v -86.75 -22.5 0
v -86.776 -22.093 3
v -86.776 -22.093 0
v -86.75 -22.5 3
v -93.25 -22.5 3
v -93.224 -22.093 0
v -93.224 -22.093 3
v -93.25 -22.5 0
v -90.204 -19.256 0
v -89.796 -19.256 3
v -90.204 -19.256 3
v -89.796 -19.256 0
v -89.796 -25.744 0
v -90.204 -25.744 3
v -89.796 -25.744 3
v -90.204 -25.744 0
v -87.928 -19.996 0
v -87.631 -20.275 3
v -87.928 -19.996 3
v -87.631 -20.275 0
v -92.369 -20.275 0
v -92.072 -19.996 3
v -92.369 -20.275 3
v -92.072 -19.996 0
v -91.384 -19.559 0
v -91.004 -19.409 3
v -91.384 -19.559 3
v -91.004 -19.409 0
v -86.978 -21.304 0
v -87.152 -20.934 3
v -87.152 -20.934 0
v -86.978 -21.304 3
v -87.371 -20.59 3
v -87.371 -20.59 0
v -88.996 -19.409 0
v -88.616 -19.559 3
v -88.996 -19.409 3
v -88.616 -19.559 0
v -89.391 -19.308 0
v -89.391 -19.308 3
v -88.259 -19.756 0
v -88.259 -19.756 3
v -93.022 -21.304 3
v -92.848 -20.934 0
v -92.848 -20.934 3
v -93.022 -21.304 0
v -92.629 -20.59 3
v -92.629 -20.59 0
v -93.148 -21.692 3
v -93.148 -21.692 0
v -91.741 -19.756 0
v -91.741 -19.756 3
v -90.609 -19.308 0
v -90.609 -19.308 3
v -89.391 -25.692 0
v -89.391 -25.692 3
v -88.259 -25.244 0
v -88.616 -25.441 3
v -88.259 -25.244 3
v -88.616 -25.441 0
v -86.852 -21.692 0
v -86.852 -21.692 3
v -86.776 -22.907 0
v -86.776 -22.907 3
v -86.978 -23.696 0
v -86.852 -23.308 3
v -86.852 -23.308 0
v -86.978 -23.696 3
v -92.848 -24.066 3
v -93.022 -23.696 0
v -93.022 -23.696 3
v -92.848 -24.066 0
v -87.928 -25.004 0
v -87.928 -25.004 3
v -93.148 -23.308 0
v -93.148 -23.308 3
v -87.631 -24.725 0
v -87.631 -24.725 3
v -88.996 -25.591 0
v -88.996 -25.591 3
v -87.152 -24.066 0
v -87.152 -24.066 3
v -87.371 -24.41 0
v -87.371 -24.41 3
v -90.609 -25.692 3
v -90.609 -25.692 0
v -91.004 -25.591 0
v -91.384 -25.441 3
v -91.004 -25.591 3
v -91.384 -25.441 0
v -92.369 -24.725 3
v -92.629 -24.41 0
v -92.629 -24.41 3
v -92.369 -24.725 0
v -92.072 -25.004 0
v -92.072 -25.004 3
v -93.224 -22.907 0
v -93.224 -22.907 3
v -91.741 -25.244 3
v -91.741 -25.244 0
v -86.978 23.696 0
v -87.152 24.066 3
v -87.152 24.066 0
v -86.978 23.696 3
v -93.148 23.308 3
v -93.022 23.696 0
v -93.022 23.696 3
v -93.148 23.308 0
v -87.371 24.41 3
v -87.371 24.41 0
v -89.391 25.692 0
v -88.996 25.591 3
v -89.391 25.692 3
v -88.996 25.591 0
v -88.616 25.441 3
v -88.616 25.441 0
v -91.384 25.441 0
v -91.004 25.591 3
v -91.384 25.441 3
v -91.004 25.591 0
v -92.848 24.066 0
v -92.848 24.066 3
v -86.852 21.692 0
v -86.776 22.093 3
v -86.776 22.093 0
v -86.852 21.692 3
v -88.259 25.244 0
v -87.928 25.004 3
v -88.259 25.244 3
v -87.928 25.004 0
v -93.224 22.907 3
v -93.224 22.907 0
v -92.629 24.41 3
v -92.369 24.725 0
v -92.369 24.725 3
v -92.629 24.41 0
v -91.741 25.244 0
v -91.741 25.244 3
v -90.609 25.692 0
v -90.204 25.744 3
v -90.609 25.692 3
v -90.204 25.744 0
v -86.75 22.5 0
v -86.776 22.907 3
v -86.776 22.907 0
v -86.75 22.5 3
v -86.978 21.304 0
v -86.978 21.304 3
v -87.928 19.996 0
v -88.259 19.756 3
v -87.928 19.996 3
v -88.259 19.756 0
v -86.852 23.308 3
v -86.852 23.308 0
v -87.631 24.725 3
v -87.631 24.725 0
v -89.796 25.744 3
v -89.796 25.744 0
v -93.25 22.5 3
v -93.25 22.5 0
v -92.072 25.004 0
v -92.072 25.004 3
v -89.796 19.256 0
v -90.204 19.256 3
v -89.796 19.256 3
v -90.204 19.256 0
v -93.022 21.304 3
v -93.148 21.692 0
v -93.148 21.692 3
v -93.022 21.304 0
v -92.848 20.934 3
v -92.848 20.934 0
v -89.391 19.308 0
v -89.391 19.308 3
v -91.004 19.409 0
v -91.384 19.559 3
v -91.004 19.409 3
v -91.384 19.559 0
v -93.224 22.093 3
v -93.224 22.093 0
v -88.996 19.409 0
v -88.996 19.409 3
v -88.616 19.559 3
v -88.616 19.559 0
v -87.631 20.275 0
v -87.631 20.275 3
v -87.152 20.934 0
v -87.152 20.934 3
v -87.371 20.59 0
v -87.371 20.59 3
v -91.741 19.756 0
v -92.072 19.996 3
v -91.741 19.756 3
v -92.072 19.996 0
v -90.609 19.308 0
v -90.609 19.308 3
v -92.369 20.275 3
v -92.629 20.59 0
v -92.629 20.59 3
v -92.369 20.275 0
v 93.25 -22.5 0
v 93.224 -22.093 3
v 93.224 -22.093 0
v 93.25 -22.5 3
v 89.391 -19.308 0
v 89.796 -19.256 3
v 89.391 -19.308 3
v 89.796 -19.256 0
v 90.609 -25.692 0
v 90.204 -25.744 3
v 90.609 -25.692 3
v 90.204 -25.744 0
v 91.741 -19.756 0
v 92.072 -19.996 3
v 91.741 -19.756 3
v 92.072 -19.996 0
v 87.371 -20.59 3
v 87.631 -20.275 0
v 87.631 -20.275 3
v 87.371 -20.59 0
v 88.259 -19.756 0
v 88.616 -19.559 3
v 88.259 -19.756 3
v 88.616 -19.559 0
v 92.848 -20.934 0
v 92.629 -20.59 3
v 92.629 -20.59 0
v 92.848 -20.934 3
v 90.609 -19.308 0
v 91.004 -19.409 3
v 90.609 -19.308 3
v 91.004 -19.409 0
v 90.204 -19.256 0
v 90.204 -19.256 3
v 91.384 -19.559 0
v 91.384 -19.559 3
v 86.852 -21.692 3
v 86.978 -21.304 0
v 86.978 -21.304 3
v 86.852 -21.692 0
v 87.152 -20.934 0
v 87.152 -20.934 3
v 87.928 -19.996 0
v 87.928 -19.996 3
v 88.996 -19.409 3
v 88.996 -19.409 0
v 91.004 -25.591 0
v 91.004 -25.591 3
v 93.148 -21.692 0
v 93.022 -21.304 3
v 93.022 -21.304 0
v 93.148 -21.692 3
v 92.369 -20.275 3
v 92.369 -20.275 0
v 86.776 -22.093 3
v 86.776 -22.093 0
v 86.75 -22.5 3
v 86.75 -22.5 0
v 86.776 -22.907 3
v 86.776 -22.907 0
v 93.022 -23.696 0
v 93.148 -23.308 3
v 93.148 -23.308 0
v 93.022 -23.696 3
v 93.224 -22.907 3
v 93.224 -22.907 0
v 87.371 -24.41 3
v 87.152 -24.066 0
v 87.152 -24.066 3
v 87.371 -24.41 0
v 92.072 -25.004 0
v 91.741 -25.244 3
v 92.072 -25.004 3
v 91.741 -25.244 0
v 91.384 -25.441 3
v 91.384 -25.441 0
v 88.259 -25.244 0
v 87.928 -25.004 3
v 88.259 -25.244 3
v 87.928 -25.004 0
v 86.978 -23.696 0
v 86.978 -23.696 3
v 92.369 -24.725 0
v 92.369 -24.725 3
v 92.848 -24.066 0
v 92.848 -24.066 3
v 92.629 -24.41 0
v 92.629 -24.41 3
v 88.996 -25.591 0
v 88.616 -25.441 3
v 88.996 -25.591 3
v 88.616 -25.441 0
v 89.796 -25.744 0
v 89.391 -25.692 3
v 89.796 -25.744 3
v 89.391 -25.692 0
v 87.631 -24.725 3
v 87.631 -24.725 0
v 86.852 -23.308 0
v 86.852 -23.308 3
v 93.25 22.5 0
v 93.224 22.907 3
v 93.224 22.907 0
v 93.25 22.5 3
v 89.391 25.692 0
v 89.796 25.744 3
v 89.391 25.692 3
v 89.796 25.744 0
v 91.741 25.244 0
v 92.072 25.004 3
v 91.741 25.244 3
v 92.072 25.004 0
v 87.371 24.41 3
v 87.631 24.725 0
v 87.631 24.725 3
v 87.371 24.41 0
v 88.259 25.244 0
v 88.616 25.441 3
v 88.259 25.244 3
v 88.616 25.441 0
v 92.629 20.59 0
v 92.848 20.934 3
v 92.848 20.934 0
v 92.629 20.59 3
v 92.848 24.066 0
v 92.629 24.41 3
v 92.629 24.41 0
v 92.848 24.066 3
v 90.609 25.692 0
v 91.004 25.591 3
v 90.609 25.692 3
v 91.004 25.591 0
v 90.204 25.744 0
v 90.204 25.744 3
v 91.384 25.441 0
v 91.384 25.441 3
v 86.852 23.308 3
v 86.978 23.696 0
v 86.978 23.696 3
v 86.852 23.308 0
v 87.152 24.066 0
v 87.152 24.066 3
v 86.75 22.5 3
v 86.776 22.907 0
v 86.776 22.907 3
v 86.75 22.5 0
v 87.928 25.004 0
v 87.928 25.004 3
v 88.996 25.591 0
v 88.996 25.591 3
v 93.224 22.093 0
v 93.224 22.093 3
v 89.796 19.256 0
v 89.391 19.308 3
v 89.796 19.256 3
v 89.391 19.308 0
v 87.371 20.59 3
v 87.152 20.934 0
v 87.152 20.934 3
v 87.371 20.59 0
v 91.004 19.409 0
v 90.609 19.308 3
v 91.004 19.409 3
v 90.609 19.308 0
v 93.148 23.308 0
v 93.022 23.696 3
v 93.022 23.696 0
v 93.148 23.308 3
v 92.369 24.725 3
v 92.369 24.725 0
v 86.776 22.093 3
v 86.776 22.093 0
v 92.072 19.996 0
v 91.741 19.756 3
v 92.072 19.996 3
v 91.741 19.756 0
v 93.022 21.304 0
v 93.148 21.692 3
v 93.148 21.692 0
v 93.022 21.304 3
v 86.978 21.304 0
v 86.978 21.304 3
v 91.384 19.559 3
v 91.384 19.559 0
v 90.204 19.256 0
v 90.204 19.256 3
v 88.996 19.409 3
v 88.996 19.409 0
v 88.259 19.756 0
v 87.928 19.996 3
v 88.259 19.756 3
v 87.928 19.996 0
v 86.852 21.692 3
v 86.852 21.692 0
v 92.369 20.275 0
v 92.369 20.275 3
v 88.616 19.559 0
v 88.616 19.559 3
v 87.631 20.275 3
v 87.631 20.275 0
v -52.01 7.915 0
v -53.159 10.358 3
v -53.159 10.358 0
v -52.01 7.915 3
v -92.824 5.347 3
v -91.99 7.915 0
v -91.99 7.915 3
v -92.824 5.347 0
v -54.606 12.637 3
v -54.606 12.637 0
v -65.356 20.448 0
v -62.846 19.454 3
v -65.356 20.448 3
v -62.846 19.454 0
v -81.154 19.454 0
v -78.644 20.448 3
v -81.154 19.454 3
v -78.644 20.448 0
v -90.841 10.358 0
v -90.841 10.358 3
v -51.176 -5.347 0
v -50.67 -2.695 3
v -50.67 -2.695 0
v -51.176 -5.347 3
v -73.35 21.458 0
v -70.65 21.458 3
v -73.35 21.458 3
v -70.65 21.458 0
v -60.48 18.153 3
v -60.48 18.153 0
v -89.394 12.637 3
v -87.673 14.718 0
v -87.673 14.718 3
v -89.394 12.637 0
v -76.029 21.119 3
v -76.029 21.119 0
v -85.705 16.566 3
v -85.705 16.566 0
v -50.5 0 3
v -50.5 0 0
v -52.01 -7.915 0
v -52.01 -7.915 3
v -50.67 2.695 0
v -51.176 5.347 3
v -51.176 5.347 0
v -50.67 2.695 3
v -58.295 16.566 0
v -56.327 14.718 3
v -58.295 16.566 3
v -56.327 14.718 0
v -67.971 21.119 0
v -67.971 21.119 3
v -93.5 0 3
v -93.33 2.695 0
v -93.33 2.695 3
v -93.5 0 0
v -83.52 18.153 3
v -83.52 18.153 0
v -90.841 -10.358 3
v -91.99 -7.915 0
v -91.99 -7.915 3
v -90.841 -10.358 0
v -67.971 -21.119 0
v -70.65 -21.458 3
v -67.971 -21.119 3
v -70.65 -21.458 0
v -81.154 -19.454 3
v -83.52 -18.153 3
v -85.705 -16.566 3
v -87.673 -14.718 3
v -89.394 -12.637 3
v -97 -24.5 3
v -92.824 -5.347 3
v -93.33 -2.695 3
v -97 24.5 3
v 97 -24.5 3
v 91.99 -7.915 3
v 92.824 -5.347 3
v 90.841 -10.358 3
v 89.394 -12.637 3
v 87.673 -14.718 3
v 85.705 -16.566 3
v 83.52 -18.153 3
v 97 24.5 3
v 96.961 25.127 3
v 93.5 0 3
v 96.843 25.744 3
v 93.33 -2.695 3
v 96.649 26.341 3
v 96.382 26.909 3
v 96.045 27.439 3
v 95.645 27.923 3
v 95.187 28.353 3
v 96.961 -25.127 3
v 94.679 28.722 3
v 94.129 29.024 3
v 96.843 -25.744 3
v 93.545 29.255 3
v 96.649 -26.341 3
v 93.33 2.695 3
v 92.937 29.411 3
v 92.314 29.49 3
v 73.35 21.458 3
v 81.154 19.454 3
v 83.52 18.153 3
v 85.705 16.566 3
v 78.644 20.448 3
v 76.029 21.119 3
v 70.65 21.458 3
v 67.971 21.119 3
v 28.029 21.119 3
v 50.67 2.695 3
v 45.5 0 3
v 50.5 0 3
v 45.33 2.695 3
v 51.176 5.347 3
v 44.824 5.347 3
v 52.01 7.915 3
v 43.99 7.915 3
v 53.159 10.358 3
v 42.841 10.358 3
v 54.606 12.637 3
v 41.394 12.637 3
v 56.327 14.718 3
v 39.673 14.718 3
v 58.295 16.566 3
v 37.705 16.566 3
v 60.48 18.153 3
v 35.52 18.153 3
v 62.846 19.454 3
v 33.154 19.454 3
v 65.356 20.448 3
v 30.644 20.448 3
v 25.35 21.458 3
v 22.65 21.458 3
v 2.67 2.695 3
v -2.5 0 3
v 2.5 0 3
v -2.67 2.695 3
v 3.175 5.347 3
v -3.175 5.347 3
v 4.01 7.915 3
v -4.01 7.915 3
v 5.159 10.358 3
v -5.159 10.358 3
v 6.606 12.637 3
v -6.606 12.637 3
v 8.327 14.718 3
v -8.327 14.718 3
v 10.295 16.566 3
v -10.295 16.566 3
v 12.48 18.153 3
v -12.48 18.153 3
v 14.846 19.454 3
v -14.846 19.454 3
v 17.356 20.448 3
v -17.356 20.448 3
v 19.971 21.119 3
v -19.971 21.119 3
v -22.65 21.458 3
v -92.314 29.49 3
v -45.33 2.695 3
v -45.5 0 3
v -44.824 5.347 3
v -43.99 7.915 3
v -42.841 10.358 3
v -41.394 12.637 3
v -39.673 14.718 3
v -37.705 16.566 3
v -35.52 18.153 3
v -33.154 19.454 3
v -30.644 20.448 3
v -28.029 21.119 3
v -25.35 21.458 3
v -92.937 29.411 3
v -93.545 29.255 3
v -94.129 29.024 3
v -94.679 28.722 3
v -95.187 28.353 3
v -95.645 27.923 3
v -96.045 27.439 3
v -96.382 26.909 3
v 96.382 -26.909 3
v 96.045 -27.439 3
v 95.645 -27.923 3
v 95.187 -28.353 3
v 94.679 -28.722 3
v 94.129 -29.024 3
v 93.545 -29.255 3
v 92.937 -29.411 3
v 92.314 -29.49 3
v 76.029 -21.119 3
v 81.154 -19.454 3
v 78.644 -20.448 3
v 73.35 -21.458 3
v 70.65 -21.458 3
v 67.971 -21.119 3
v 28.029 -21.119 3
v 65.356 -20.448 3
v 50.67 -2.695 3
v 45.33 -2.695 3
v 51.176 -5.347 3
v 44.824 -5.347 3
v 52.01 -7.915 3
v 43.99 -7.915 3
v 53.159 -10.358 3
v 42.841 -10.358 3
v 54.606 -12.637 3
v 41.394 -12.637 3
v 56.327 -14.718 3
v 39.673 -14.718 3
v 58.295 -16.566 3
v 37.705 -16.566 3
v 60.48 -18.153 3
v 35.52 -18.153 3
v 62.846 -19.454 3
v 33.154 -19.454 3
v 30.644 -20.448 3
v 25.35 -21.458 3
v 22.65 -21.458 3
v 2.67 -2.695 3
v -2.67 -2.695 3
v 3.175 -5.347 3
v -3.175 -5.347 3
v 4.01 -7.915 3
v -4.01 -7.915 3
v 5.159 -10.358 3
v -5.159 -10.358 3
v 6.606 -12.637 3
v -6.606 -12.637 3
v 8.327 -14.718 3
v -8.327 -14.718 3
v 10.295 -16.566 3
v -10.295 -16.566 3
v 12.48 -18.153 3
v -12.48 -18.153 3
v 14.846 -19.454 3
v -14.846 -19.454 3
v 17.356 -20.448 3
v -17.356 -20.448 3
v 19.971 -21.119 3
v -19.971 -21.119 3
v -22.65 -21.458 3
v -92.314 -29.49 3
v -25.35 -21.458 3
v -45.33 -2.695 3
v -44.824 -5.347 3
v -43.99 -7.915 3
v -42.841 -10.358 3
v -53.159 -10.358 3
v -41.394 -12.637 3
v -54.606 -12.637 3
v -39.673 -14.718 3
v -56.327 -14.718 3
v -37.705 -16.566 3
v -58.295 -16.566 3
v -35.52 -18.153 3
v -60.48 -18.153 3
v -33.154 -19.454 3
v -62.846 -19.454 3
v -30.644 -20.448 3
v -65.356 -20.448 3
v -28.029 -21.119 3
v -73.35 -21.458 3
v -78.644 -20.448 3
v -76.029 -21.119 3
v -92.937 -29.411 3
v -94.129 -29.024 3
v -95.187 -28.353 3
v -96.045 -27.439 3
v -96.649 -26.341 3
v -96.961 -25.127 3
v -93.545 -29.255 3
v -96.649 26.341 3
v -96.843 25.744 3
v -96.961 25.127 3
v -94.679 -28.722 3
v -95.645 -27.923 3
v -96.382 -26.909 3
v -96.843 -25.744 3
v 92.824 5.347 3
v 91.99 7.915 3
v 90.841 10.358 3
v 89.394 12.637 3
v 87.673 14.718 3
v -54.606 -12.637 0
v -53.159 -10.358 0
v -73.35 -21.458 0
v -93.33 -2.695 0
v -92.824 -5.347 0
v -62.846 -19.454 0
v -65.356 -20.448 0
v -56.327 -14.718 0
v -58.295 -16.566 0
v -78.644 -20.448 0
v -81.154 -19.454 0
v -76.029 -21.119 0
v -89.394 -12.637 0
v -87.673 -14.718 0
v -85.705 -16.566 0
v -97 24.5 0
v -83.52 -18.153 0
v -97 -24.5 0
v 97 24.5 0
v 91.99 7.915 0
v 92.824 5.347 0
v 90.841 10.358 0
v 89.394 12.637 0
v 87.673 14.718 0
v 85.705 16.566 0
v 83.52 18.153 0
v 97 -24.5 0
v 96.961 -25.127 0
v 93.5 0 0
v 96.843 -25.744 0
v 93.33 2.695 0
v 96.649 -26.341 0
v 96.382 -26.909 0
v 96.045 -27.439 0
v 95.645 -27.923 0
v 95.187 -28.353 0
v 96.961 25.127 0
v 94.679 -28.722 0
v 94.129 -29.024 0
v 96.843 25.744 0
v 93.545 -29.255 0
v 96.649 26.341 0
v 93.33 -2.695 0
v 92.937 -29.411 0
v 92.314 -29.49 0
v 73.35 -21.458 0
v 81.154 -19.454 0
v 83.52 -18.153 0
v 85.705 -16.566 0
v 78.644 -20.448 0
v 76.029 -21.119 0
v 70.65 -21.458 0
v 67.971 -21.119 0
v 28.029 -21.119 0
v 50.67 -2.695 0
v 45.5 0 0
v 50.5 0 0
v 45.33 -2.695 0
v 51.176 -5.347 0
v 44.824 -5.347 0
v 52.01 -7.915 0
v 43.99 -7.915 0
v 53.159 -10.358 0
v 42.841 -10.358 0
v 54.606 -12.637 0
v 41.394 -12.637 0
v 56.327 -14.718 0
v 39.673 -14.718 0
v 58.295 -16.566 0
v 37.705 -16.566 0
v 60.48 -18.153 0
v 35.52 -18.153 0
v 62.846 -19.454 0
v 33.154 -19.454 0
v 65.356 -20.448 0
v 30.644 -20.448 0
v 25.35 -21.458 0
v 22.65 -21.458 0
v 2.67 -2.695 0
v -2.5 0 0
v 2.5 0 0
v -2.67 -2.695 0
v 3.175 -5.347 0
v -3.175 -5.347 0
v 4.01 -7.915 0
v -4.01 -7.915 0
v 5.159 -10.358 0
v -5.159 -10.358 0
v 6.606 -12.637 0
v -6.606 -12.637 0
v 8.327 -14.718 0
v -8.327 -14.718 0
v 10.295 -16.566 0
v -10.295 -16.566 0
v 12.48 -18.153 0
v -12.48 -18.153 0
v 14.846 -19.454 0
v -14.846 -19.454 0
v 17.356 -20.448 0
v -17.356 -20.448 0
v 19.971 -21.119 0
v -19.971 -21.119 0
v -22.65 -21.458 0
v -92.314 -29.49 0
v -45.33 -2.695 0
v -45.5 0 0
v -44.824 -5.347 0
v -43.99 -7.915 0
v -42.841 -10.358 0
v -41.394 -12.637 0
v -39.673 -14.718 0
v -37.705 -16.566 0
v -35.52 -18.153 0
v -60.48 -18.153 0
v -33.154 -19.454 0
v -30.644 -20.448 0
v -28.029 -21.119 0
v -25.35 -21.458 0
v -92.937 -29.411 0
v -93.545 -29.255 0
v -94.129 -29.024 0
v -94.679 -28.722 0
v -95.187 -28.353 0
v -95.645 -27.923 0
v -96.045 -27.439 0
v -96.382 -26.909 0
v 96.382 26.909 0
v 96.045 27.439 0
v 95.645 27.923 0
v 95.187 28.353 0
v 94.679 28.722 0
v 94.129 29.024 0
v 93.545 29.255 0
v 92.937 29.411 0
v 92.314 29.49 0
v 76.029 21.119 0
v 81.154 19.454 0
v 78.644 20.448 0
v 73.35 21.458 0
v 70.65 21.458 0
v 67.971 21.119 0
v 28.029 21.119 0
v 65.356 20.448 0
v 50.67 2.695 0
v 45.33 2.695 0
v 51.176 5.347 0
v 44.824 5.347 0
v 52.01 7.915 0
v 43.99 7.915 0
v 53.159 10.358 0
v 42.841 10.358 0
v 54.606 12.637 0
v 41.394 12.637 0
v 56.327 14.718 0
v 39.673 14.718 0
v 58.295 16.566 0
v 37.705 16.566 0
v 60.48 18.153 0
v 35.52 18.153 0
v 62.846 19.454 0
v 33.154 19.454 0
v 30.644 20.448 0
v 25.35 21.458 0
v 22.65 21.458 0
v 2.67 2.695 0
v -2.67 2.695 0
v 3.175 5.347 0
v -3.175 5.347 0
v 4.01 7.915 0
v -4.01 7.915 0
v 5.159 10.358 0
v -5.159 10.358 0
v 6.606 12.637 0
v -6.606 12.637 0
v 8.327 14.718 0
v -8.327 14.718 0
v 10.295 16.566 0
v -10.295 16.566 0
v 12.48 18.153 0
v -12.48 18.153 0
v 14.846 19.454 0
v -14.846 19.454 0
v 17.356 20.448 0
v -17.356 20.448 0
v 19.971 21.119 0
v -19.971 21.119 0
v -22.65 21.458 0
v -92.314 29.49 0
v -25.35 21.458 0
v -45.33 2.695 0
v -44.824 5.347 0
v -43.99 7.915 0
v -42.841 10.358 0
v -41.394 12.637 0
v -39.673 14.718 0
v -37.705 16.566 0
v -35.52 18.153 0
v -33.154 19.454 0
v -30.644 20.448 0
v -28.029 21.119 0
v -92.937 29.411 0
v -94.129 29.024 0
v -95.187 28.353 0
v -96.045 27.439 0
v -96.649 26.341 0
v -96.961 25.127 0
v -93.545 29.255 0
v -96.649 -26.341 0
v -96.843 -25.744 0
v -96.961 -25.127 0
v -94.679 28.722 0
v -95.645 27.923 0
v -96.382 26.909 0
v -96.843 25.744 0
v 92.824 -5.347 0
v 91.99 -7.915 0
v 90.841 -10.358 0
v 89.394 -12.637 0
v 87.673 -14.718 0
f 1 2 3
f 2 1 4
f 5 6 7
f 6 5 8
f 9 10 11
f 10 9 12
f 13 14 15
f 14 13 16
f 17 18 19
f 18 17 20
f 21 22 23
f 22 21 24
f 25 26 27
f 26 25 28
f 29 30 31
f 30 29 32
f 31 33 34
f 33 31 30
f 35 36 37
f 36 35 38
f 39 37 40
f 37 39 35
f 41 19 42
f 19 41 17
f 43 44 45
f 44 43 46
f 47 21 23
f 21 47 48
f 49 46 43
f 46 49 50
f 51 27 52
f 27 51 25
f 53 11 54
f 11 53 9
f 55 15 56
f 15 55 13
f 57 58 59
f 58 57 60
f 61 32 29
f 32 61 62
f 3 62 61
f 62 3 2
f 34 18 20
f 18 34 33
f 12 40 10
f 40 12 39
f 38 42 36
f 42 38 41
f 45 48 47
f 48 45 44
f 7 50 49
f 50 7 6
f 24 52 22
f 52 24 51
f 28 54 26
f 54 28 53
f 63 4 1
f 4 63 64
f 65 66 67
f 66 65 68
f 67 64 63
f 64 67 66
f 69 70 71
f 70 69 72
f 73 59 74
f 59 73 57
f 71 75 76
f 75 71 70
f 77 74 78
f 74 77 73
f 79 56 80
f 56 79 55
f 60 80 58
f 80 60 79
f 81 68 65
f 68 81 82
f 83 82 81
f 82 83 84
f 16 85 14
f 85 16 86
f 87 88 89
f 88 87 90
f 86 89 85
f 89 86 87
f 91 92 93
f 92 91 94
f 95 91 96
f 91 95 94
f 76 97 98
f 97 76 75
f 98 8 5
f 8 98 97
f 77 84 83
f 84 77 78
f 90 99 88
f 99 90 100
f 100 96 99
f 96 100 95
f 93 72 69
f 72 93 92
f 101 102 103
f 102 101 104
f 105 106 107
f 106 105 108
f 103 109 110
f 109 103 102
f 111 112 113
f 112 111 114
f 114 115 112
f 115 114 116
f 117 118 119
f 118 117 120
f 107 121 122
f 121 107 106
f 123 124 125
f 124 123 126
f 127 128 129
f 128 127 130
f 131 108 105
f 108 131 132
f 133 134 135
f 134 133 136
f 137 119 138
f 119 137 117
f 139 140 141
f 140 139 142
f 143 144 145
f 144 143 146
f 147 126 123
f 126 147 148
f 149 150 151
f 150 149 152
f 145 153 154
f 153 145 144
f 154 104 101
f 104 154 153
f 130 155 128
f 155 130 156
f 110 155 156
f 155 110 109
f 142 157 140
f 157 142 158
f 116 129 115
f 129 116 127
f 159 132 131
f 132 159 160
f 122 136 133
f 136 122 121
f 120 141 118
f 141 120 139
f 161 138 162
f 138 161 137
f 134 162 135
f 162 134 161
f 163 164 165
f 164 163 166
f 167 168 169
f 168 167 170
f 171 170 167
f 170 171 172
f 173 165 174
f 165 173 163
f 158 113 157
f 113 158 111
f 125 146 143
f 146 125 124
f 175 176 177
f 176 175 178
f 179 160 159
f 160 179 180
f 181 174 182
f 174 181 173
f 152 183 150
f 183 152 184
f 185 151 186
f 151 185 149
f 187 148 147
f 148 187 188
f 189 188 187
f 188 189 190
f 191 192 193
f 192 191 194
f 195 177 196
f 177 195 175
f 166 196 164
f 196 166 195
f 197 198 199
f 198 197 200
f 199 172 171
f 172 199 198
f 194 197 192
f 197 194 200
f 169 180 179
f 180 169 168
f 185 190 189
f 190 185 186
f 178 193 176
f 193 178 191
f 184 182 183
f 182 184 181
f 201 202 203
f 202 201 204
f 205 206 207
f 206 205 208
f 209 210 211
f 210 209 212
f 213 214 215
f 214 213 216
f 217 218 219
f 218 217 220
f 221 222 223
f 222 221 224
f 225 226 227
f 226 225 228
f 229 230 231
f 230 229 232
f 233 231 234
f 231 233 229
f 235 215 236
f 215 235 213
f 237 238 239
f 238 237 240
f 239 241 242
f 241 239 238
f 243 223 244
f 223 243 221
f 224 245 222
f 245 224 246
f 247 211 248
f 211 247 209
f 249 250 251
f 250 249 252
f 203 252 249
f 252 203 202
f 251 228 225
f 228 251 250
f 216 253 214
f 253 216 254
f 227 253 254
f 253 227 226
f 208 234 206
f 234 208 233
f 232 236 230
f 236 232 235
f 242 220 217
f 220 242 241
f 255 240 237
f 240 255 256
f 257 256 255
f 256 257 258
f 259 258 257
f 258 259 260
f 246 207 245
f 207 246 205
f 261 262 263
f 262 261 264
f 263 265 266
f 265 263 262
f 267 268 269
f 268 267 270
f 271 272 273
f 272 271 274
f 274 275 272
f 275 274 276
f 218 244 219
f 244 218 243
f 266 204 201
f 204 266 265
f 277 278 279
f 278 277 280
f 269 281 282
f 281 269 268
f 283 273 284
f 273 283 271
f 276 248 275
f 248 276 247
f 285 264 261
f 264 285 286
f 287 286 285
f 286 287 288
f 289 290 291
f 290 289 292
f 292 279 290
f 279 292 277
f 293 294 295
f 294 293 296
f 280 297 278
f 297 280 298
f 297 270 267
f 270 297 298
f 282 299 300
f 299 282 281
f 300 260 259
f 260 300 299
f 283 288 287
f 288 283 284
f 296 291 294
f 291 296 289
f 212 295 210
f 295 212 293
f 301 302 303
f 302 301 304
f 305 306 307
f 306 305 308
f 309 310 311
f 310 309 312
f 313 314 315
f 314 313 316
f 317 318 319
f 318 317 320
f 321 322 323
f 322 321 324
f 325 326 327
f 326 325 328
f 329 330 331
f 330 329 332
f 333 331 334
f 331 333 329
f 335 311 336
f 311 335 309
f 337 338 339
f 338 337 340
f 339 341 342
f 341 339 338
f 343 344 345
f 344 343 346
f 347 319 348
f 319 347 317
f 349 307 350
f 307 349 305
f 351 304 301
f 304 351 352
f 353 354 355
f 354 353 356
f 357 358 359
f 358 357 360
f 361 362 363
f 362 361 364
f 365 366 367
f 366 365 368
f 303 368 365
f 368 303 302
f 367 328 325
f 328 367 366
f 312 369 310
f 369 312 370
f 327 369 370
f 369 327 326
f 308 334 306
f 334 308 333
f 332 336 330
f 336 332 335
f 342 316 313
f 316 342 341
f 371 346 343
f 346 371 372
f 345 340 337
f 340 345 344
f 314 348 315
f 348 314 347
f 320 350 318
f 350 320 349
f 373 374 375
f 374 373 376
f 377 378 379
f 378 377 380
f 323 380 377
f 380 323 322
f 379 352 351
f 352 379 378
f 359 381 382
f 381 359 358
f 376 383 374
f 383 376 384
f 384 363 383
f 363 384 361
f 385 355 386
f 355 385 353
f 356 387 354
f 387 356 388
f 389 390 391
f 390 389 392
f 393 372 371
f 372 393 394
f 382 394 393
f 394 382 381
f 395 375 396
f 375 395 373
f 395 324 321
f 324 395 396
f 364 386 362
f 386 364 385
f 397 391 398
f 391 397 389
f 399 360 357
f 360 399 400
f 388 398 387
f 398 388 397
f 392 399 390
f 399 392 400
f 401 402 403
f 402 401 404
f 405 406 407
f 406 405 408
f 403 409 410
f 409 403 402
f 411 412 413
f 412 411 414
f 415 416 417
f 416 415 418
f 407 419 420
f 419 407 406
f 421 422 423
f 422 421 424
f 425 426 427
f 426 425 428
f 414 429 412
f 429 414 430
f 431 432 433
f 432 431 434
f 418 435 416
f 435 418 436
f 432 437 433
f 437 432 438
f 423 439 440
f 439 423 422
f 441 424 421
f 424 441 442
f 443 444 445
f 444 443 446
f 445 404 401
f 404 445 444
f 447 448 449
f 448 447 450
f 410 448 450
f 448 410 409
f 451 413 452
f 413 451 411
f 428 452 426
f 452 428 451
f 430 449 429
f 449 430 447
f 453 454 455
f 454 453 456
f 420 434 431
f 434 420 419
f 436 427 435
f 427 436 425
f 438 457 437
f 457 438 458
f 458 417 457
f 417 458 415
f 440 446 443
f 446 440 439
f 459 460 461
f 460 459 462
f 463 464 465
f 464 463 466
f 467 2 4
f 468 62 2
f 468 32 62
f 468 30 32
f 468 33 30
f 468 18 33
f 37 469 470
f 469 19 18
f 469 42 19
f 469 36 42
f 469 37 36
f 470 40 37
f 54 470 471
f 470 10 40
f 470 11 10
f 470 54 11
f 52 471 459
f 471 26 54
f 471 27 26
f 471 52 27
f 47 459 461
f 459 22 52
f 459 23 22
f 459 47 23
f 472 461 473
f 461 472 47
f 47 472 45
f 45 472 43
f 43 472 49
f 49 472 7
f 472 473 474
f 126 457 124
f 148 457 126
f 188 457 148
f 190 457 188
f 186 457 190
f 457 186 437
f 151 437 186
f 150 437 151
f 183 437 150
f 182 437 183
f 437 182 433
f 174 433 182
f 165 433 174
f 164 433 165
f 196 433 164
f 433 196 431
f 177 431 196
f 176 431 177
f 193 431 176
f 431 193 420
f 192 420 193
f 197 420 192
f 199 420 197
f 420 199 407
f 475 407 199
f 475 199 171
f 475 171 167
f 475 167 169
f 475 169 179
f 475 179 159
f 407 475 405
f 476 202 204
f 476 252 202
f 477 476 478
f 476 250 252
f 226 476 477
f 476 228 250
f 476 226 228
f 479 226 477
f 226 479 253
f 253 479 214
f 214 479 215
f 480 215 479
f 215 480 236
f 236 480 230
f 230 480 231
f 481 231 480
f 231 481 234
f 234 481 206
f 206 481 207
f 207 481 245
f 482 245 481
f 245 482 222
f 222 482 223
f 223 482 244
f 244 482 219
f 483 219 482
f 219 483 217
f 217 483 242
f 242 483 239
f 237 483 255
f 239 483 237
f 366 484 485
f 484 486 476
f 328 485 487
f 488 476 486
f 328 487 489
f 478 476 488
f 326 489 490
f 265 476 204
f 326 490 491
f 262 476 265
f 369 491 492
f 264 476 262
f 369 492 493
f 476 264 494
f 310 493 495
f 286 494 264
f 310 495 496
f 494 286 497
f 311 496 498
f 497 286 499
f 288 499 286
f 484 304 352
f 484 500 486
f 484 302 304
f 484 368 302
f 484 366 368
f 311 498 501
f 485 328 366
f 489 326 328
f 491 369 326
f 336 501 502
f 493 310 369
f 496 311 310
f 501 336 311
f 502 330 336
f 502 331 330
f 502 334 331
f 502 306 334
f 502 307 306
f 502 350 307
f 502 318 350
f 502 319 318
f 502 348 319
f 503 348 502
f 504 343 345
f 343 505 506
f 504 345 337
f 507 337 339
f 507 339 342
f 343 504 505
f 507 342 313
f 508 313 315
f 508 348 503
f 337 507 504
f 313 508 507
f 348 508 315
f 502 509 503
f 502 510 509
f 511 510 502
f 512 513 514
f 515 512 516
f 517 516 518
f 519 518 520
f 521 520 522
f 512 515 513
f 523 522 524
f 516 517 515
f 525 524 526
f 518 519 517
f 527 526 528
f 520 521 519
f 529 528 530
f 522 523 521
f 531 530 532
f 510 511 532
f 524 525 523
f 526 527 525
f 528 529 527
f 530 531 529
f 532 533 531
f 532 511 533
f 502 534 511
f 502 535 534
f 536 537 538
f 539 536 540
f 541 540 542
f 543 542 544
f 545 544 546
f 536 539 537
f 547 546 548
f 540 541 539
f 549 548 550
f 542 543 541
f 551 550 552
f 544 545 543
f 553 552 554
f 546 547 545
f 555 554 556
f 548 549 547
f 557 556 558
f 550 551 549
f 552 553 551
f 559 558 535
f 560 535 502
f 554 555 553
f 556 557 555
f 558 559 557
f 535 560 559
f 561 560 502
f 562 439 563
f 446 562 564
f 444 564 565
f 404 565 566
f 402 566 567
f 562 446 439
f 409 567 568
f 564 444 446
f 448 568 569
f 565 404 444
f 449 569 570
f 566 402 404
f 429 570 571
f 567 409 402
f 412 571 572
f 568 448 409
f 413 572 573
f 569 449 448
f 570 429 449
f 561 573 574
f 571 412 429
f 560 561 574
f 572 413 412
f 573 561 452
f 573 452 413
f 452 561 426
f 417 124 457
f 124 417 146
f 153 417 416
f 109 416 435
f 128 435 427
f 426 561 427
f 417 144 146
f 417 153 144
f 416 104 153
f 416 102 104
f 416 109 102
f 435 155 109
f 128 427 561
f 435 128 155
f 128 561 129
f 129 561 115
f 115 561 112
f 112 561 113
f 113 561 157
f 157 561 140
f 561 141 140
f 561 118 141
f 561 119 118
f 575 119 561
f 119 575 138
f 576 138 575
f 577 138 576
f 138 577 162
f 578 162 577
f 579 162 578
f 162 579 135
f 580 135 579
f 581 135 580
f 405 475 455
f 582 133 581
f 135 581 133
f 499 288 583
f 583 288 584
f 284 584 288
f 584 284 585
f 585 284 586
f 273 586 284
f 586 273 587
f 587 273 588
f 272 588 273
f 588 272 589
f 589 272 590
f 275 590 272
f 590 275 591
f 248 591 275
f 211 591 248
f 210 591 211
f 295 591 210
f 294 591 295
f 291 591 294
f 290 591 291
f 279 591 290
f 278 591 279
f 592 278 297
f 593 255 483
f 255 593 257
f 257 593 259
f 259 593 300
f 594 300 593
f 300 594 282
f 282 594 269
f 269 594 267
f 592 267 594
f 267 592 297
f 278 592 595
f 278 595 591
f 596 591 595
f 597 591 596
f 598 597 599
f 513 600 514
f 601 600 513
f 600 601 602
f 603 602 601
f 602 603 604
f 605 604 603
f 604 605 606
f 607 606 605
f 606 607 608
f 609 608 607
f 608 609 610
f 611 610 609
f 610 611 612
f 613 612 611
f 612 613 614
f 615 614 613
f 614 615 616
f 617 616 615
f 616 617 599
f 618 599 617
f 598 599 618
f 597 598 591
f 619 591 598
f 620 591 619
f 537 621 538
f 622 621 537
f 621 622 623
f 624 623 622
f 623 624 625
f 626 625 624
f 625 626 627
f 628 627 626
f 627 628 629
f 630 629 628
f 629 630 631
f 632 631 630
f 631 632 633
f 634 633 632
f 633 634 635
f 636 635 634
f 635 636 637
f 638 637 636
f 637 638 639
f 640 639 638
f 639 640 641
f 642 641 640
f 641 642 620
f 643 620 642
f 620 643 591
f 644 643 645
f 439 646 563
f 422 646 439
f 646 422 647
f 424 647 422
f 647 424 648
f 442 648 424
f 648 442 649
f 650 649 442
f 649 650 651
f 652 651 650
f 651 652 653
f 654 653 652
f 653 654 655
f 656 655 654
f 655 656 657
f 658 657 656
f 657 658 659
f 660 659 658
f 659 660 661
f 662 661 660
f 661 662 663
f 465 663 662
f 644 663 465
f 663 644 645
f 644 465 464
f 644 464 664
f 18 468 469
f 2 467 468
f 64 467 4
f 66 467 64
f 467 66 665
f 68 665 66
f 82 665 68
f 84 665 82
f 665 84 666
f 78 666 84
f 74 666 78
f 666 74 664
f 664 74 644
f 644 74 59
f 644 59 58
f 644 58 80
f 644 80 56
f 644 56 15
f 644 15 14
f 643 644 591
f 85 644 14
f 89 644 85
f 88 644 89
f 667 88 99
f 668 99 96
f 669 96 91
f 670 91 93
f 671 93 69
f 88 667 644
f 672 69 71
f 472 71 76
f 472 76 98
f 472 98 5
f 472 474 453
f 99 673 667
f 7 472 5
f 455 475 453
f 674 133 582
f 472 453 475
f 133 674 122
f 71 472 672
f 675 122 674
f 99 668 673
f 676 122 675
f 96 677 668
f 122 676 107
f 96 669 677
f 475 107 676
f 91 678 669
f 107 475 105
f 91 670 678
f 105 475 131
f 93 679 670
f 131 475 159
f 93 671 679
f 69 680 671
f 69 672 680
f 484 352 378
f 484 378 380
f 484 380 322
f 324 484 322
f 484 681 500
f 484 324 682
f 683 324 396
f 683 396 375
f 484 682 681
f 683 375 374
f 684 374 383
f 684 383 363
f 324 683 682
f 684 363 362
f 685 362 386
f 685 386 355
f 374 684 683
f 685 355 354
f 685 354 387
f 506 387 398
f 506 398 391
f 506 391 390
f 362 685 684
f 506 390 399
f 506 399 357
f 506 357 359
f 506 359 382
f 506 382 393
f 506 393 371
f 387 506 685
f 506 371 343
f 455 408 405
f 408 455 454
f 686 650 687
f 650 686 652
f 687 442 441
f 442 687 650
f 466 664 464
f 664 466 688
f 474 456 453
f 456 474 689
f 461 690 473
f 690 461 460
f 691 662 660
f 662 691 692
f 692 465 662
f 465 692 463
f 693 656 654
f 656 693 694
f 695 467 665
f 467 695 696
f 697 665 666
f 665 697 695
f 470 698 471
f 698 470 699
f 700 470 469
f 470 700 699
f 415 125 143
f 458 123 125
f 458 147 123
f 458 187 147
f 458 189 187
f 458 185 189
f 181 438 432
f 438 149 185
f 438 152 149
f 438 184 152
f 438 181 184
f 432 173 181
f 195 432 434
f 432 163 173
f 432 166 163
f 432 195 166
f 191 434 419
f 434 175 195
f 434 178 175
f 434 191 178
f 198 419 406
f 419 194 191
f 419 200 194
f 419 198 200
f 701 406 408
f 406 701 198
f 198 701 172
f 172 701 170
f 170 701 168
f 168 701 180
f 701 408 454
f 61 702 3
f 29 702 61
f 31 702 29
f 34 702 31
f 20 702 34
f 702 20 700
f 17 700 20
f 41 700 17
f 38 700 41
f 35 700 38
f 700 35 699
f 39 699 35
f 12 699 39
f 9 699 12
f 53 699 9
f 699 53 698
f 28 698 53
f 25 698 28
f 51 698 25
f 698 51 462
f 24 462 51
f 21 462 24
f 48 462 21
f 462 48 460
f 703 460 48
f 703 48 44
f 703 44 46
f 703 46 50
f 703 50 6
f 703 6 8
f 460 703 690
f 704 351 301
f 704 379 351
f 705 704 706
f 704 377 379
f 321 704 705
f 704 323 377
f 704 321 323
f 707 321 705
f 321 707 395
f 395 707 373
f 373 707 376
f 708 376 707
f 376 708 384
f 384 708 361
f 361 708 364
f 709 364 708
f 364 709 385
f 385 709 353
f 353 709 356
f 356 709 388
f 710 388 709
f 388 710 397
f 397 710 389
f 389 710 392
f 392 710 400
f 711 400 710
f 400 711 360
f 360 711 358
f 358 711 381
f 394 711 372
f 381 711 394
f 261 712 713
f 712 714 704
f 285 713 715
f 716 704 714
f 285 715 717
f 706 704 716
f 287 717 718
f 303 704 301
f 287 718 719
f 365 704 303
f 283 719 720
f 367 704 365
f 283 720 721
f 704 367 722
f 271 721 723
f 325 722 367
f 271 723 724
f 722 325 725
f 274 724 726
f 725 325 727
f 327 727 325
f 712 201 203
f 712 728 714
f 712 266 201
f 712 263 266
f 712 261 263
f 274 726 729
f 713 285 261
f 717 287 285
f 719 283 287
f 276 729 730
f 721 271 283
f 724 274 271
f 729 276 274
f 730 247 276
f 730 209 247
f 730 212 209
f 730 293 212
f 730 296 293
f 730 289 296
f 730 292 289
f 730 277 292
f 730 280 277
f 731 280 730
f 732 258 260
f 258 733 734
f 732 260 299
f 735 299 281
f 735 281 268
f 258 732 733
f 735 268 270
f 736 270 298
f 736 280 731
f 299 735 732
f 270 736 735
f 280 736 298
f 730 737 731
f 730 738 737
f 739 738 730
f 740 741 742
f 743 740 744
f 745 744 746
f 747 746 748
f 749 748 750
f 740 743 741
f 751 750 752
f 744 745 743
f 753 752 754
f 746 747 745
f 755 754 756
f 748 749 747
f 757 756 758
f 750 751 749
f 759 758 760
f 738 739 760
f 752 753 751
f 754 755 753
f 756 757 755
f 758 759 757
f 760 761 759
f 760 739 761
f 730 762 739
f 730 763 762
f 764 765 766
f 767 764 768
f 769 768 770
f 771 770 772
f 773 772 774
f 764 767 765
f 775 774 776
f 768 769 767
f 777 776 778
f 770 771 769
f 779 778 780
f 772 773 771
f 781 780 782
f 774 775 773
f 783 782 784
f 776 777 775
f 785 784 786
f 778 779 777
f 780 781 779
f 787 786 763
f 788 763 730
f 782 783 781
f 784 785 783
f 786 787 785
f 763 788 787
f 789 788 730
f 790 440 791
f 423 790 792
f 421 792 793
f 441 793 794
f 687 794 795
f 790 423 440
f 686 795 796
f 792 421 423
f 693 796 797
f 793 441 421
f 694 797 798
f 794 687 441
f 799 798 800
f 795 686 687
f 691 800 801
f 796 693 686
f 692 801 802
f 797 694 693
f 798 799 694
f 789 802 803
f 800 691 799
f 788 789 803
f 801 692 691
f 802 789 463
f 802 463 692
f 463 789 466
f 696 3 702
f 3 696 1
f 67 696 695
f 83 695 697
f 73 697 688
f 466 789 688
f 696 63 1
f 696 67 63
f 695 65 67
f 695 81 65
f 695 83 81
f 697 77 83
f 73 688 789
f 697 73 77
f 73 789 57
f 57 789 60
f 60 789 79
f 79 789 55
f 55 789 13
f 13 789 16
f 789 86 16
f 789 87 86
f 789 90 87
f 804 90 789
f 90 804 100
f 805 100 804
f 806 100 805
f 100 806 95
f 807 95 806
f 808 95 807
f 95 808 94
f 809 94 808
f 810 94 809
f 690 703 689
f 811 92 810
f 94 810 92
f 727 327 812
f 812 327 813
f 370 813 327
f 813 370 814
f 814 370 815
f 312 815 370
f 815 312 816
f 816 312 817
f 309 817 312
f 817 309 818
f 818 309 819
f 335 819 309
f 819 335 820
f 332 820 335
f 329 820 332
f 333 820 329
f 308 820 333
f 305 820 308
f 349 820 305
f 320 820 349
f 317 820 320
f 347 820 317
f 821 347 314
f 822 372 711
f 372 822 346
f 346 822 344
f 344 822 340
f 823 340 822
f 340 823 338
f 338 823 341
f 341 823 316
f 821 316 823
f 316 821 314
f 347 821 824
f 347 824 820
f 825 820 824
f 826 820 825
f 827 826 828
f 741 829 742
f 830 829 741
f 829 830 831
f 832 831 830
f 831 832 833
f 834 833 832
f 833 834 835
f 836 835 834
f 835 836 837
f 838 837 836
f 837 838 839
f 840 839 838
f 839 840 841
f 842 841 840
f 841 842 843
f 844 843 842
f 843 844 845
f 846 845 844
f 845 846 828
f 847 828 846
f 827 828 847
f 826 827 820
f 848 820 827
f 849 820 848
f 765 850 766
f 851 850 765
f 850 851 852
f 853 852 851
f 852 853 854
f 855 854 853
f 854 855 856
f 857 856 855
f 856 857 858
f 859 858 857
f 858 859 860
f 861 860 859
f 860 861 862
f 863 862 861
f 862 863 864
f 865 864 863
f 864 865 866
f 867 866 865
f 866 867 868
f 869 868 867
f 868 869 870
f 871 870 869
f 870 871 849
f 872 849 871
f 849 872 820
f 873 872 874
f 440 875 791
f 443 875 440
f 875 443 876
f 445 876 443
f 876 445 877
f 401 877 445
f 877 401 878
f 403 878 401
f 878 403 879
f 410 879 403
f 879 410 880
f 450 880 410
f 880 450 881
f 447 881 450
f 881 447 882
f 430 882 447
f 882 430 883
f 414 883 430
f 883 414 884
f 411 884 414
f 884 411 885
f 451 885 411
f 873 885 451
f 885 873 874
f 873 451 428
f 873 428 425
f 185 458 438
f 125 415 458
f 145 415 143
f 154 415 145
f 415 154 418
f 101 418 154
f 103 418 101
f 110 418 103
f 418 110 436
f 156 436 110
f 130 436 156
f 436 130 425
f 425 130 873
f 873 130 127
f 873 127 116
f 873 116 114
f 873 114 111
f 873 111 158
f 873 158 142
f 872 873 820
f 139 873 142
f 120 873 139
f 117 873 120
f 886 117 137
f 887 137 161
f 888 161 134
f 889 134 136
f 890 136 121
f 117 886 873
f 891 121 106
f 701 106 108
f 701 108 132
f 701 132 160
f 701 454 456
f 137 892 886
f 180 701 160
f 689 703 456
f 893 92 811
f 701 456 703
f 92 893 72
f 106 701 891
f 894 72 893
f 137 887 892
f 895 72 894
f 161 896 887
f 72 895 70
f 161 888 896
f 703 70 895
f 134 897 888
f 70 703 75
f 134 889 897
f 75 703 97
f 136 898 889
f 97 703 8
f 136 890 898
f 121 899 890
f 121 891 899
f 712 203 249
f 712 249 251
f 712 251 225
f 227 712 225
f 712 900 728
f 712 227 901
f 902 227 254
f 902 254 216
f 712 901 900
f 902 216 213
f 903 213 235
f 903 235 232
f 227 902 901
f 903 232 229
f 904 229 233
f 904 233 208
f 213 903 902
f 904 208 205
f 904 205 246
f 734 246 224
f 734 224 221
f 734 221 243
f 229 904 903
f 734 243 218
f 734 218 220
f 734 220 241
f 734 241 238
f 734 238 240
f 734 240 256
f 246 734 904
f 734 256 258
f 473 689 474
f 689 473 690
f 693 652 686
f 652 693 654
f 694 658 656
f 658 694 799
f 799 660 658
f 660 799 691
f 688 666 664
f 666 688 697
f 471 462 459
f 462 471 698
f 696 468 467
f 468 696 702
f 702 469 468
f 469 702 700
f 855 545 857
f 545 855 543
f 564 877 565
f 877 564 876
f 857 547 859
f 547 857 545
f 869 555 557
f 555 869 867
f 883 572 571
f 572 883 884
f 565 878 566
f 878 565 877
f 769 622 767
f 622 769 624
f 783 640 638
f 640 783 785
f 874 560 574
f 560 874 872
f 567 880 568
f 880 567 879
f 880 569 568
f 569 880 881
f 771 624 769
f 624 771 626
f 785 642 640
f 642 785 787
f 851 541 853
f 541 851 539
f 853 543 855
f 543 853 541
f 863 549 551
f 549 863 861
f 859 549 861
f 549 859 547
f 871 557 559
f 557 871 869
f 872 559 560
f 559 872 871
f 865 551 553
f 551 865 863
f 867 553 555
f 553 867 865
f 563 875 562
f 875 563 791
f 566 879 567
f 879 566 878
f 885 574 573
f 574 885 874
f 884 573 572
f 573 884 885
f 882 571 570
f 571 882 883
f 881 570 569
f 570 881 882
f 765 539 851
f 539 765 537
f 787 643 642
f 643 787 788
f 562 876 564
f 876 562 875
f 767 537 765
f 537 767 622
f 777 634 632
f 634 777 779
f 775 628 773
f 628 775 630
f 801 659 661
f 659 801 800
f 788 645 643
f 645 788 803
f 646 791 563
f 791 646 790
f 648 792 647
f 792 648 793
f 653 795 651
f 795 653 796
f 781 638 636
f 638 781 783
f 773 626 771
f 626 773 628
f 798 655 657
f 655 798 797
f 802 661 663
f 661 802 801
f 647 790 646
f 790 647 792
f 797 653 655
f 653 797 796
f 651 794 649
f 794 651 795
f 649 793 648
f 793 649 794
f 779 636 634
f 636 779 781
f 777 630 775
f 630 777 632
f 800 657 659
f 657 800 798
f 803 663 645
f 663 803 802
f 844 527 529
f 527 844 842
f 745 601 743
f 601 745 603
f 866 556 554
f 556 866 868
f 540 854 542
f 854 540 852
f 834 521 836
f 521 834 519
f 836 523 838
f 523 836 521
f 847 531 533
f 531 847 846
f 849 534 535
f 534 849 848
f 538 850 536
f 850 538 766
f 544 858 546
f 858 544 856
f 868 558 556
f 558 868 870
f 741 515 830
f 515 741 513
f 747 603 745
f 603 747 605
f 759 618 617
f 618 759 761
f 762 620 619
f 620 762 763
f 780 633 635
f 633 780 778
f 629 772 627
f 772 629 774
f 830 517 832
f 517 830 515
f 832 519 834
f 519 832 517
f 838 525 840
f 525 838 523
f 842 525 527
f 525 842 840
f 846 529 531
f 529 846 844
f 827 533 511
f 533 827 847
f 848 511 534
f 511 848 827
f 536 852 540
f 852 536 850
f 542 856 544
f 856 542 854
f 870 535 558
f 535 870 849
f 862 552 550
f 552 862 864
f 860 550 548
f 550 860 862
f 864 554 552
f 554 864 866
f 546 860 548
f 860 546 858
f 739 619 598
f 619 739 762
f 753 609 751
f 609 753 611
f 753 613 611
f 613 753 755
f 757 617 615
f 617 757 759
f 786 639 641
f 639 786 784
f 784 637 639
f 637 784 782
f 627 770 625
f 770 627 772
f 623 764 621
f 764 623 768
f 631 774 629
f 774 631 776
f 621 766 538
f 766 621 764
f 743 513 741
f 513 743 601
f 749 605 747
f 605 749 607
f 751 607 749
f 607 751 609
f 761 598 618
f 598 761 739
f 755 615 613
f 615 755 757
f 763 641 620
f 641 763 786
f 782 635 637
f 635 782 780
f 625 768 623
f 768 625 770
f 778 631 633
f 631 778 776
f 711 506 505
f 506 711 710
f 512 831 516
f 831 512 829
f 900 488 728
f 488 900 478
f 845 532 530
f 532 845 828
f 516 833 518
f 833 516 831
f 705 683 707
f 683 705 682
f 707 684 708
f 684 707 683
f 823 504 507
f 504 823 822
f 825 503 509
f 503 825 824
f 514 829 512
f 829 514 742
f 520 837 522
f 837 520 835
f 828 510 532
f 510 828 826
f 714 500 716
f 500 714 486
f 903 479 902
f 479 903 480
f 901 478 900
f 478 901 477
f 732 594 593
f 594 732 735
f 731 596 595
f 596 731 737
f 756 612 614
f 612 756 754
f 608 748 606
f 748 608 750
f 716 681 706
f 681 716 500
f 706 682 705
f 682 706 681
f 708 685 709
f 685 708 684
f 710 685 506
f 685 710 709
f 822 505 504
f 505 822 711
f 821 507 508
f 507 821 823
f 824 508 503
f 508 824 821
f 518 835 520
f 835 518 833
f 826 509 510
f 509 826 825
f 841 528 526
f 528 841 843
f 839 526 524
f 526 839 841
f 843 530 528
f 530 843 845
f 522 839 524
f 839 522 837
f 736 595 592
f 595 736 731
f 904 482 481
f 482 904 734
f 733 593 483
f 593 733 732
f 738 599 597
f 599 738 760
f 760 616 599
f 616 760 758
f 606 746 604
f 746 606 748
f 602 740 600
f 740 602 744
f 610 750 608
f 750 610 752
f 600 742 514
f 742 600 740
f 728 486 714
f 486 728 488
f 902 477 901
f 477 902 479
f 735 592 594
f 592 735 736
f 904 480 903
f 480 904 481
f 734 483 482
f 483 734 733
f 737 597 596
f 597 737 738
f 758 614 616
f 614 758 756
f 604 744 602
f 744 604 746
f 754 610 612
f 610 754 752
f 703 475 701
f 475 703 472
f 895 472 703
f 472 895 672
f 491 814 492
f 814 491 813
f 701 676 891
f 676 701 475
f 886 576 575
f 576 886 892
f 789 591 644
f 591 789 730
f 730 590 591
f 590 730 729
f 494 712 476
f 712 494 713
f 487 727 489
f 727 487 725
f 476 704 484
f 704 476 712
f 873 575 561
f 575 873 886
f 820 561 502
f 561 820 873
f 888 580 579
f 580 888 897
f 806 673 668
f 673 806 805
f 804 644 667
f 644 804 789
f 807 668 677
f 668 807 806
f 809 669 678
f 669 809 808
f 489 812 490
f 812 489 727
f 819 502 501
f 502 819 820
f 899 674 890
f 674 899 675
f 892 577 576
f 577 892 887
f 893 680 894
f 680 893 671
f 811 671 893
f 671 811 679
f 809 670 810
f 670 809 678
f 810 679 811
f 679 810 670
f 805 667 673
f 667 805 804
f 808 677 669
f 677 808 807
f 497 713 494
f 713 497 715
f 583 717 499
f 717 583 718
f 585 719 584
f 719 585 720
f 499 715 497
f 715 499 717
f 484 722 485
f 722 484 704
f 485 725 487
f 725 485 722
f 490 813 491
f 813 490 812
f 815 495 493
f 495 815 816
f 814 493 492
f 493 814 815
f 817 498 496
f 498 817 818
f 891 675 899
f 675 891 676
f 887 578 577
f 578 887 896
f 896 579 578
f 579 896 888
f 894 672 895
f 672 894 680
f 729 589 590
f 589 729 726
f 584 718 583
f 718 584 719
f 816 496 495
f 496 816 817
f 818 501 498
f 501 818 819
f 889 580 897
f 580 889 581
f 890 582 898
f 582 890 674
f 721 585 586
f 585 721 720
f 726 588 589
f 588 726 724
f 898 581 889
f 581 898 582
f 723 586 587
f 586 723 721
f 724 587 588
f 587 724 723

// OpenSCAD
$fn = 50;


difference() {
	union() {
		hull() {
			translate(v = [-92.0000000000, 24.5000000000, 0]) {
				cylinder(h = 3, r = 5);
			}
			translate(v = [92.0000000000, 24.5000000000, 0]) {
				cylinder(h = 3, r = 5);
			}
			translate(v = [-92.0000000000, -24.5000000000, 0]) {
				cylinder(h = 3, r = 5);
			}
			translate(v = [92.0000000000, -24.5000000000, 0]) {
				cylinder(h = 3, r = 5);
			}
		}
	}
	union() {
		#translate(v = [-90.0000000000, -22.5000000000, -100.0000000000]) {
			cylinder(h = 200, r = 3.2500000000);
		}
		#translate(v = [-90.0000000000, 22.5000000000, -100.0000000000]) {
			cylinder(h = 200, r = 3.2500000000);
		}
		#translate(v = [90.0000000000, -22.5000000000, -100.0000000000]) {
			cylinder(h = 200, r = 3.2500000000);
		}
		#translate(v = [90.0000000000, 22.5000000000, -100.0000000000]) {
			cylinder(h = 200, r = 3.2500000000);
		}
		#translate(v = [-72.0000000000, 0, 0]) {
			cylinder(h = 3, r = 21.5000000000);
		}
		#translate(v = [-24.0000000000, 0, 0]) {
			cylinder(h = 3, r = 21.5000000000);
		}
		#translate(v = [24.0000000000, 0, 0]) {
			cylinder(h = 3, r = 21.5000000000);
		}
		#translate(v = [72.0000000000, 0, 0]) {
			cylinder(h = 3, r = 21.5000000000);
		}
	}
}
